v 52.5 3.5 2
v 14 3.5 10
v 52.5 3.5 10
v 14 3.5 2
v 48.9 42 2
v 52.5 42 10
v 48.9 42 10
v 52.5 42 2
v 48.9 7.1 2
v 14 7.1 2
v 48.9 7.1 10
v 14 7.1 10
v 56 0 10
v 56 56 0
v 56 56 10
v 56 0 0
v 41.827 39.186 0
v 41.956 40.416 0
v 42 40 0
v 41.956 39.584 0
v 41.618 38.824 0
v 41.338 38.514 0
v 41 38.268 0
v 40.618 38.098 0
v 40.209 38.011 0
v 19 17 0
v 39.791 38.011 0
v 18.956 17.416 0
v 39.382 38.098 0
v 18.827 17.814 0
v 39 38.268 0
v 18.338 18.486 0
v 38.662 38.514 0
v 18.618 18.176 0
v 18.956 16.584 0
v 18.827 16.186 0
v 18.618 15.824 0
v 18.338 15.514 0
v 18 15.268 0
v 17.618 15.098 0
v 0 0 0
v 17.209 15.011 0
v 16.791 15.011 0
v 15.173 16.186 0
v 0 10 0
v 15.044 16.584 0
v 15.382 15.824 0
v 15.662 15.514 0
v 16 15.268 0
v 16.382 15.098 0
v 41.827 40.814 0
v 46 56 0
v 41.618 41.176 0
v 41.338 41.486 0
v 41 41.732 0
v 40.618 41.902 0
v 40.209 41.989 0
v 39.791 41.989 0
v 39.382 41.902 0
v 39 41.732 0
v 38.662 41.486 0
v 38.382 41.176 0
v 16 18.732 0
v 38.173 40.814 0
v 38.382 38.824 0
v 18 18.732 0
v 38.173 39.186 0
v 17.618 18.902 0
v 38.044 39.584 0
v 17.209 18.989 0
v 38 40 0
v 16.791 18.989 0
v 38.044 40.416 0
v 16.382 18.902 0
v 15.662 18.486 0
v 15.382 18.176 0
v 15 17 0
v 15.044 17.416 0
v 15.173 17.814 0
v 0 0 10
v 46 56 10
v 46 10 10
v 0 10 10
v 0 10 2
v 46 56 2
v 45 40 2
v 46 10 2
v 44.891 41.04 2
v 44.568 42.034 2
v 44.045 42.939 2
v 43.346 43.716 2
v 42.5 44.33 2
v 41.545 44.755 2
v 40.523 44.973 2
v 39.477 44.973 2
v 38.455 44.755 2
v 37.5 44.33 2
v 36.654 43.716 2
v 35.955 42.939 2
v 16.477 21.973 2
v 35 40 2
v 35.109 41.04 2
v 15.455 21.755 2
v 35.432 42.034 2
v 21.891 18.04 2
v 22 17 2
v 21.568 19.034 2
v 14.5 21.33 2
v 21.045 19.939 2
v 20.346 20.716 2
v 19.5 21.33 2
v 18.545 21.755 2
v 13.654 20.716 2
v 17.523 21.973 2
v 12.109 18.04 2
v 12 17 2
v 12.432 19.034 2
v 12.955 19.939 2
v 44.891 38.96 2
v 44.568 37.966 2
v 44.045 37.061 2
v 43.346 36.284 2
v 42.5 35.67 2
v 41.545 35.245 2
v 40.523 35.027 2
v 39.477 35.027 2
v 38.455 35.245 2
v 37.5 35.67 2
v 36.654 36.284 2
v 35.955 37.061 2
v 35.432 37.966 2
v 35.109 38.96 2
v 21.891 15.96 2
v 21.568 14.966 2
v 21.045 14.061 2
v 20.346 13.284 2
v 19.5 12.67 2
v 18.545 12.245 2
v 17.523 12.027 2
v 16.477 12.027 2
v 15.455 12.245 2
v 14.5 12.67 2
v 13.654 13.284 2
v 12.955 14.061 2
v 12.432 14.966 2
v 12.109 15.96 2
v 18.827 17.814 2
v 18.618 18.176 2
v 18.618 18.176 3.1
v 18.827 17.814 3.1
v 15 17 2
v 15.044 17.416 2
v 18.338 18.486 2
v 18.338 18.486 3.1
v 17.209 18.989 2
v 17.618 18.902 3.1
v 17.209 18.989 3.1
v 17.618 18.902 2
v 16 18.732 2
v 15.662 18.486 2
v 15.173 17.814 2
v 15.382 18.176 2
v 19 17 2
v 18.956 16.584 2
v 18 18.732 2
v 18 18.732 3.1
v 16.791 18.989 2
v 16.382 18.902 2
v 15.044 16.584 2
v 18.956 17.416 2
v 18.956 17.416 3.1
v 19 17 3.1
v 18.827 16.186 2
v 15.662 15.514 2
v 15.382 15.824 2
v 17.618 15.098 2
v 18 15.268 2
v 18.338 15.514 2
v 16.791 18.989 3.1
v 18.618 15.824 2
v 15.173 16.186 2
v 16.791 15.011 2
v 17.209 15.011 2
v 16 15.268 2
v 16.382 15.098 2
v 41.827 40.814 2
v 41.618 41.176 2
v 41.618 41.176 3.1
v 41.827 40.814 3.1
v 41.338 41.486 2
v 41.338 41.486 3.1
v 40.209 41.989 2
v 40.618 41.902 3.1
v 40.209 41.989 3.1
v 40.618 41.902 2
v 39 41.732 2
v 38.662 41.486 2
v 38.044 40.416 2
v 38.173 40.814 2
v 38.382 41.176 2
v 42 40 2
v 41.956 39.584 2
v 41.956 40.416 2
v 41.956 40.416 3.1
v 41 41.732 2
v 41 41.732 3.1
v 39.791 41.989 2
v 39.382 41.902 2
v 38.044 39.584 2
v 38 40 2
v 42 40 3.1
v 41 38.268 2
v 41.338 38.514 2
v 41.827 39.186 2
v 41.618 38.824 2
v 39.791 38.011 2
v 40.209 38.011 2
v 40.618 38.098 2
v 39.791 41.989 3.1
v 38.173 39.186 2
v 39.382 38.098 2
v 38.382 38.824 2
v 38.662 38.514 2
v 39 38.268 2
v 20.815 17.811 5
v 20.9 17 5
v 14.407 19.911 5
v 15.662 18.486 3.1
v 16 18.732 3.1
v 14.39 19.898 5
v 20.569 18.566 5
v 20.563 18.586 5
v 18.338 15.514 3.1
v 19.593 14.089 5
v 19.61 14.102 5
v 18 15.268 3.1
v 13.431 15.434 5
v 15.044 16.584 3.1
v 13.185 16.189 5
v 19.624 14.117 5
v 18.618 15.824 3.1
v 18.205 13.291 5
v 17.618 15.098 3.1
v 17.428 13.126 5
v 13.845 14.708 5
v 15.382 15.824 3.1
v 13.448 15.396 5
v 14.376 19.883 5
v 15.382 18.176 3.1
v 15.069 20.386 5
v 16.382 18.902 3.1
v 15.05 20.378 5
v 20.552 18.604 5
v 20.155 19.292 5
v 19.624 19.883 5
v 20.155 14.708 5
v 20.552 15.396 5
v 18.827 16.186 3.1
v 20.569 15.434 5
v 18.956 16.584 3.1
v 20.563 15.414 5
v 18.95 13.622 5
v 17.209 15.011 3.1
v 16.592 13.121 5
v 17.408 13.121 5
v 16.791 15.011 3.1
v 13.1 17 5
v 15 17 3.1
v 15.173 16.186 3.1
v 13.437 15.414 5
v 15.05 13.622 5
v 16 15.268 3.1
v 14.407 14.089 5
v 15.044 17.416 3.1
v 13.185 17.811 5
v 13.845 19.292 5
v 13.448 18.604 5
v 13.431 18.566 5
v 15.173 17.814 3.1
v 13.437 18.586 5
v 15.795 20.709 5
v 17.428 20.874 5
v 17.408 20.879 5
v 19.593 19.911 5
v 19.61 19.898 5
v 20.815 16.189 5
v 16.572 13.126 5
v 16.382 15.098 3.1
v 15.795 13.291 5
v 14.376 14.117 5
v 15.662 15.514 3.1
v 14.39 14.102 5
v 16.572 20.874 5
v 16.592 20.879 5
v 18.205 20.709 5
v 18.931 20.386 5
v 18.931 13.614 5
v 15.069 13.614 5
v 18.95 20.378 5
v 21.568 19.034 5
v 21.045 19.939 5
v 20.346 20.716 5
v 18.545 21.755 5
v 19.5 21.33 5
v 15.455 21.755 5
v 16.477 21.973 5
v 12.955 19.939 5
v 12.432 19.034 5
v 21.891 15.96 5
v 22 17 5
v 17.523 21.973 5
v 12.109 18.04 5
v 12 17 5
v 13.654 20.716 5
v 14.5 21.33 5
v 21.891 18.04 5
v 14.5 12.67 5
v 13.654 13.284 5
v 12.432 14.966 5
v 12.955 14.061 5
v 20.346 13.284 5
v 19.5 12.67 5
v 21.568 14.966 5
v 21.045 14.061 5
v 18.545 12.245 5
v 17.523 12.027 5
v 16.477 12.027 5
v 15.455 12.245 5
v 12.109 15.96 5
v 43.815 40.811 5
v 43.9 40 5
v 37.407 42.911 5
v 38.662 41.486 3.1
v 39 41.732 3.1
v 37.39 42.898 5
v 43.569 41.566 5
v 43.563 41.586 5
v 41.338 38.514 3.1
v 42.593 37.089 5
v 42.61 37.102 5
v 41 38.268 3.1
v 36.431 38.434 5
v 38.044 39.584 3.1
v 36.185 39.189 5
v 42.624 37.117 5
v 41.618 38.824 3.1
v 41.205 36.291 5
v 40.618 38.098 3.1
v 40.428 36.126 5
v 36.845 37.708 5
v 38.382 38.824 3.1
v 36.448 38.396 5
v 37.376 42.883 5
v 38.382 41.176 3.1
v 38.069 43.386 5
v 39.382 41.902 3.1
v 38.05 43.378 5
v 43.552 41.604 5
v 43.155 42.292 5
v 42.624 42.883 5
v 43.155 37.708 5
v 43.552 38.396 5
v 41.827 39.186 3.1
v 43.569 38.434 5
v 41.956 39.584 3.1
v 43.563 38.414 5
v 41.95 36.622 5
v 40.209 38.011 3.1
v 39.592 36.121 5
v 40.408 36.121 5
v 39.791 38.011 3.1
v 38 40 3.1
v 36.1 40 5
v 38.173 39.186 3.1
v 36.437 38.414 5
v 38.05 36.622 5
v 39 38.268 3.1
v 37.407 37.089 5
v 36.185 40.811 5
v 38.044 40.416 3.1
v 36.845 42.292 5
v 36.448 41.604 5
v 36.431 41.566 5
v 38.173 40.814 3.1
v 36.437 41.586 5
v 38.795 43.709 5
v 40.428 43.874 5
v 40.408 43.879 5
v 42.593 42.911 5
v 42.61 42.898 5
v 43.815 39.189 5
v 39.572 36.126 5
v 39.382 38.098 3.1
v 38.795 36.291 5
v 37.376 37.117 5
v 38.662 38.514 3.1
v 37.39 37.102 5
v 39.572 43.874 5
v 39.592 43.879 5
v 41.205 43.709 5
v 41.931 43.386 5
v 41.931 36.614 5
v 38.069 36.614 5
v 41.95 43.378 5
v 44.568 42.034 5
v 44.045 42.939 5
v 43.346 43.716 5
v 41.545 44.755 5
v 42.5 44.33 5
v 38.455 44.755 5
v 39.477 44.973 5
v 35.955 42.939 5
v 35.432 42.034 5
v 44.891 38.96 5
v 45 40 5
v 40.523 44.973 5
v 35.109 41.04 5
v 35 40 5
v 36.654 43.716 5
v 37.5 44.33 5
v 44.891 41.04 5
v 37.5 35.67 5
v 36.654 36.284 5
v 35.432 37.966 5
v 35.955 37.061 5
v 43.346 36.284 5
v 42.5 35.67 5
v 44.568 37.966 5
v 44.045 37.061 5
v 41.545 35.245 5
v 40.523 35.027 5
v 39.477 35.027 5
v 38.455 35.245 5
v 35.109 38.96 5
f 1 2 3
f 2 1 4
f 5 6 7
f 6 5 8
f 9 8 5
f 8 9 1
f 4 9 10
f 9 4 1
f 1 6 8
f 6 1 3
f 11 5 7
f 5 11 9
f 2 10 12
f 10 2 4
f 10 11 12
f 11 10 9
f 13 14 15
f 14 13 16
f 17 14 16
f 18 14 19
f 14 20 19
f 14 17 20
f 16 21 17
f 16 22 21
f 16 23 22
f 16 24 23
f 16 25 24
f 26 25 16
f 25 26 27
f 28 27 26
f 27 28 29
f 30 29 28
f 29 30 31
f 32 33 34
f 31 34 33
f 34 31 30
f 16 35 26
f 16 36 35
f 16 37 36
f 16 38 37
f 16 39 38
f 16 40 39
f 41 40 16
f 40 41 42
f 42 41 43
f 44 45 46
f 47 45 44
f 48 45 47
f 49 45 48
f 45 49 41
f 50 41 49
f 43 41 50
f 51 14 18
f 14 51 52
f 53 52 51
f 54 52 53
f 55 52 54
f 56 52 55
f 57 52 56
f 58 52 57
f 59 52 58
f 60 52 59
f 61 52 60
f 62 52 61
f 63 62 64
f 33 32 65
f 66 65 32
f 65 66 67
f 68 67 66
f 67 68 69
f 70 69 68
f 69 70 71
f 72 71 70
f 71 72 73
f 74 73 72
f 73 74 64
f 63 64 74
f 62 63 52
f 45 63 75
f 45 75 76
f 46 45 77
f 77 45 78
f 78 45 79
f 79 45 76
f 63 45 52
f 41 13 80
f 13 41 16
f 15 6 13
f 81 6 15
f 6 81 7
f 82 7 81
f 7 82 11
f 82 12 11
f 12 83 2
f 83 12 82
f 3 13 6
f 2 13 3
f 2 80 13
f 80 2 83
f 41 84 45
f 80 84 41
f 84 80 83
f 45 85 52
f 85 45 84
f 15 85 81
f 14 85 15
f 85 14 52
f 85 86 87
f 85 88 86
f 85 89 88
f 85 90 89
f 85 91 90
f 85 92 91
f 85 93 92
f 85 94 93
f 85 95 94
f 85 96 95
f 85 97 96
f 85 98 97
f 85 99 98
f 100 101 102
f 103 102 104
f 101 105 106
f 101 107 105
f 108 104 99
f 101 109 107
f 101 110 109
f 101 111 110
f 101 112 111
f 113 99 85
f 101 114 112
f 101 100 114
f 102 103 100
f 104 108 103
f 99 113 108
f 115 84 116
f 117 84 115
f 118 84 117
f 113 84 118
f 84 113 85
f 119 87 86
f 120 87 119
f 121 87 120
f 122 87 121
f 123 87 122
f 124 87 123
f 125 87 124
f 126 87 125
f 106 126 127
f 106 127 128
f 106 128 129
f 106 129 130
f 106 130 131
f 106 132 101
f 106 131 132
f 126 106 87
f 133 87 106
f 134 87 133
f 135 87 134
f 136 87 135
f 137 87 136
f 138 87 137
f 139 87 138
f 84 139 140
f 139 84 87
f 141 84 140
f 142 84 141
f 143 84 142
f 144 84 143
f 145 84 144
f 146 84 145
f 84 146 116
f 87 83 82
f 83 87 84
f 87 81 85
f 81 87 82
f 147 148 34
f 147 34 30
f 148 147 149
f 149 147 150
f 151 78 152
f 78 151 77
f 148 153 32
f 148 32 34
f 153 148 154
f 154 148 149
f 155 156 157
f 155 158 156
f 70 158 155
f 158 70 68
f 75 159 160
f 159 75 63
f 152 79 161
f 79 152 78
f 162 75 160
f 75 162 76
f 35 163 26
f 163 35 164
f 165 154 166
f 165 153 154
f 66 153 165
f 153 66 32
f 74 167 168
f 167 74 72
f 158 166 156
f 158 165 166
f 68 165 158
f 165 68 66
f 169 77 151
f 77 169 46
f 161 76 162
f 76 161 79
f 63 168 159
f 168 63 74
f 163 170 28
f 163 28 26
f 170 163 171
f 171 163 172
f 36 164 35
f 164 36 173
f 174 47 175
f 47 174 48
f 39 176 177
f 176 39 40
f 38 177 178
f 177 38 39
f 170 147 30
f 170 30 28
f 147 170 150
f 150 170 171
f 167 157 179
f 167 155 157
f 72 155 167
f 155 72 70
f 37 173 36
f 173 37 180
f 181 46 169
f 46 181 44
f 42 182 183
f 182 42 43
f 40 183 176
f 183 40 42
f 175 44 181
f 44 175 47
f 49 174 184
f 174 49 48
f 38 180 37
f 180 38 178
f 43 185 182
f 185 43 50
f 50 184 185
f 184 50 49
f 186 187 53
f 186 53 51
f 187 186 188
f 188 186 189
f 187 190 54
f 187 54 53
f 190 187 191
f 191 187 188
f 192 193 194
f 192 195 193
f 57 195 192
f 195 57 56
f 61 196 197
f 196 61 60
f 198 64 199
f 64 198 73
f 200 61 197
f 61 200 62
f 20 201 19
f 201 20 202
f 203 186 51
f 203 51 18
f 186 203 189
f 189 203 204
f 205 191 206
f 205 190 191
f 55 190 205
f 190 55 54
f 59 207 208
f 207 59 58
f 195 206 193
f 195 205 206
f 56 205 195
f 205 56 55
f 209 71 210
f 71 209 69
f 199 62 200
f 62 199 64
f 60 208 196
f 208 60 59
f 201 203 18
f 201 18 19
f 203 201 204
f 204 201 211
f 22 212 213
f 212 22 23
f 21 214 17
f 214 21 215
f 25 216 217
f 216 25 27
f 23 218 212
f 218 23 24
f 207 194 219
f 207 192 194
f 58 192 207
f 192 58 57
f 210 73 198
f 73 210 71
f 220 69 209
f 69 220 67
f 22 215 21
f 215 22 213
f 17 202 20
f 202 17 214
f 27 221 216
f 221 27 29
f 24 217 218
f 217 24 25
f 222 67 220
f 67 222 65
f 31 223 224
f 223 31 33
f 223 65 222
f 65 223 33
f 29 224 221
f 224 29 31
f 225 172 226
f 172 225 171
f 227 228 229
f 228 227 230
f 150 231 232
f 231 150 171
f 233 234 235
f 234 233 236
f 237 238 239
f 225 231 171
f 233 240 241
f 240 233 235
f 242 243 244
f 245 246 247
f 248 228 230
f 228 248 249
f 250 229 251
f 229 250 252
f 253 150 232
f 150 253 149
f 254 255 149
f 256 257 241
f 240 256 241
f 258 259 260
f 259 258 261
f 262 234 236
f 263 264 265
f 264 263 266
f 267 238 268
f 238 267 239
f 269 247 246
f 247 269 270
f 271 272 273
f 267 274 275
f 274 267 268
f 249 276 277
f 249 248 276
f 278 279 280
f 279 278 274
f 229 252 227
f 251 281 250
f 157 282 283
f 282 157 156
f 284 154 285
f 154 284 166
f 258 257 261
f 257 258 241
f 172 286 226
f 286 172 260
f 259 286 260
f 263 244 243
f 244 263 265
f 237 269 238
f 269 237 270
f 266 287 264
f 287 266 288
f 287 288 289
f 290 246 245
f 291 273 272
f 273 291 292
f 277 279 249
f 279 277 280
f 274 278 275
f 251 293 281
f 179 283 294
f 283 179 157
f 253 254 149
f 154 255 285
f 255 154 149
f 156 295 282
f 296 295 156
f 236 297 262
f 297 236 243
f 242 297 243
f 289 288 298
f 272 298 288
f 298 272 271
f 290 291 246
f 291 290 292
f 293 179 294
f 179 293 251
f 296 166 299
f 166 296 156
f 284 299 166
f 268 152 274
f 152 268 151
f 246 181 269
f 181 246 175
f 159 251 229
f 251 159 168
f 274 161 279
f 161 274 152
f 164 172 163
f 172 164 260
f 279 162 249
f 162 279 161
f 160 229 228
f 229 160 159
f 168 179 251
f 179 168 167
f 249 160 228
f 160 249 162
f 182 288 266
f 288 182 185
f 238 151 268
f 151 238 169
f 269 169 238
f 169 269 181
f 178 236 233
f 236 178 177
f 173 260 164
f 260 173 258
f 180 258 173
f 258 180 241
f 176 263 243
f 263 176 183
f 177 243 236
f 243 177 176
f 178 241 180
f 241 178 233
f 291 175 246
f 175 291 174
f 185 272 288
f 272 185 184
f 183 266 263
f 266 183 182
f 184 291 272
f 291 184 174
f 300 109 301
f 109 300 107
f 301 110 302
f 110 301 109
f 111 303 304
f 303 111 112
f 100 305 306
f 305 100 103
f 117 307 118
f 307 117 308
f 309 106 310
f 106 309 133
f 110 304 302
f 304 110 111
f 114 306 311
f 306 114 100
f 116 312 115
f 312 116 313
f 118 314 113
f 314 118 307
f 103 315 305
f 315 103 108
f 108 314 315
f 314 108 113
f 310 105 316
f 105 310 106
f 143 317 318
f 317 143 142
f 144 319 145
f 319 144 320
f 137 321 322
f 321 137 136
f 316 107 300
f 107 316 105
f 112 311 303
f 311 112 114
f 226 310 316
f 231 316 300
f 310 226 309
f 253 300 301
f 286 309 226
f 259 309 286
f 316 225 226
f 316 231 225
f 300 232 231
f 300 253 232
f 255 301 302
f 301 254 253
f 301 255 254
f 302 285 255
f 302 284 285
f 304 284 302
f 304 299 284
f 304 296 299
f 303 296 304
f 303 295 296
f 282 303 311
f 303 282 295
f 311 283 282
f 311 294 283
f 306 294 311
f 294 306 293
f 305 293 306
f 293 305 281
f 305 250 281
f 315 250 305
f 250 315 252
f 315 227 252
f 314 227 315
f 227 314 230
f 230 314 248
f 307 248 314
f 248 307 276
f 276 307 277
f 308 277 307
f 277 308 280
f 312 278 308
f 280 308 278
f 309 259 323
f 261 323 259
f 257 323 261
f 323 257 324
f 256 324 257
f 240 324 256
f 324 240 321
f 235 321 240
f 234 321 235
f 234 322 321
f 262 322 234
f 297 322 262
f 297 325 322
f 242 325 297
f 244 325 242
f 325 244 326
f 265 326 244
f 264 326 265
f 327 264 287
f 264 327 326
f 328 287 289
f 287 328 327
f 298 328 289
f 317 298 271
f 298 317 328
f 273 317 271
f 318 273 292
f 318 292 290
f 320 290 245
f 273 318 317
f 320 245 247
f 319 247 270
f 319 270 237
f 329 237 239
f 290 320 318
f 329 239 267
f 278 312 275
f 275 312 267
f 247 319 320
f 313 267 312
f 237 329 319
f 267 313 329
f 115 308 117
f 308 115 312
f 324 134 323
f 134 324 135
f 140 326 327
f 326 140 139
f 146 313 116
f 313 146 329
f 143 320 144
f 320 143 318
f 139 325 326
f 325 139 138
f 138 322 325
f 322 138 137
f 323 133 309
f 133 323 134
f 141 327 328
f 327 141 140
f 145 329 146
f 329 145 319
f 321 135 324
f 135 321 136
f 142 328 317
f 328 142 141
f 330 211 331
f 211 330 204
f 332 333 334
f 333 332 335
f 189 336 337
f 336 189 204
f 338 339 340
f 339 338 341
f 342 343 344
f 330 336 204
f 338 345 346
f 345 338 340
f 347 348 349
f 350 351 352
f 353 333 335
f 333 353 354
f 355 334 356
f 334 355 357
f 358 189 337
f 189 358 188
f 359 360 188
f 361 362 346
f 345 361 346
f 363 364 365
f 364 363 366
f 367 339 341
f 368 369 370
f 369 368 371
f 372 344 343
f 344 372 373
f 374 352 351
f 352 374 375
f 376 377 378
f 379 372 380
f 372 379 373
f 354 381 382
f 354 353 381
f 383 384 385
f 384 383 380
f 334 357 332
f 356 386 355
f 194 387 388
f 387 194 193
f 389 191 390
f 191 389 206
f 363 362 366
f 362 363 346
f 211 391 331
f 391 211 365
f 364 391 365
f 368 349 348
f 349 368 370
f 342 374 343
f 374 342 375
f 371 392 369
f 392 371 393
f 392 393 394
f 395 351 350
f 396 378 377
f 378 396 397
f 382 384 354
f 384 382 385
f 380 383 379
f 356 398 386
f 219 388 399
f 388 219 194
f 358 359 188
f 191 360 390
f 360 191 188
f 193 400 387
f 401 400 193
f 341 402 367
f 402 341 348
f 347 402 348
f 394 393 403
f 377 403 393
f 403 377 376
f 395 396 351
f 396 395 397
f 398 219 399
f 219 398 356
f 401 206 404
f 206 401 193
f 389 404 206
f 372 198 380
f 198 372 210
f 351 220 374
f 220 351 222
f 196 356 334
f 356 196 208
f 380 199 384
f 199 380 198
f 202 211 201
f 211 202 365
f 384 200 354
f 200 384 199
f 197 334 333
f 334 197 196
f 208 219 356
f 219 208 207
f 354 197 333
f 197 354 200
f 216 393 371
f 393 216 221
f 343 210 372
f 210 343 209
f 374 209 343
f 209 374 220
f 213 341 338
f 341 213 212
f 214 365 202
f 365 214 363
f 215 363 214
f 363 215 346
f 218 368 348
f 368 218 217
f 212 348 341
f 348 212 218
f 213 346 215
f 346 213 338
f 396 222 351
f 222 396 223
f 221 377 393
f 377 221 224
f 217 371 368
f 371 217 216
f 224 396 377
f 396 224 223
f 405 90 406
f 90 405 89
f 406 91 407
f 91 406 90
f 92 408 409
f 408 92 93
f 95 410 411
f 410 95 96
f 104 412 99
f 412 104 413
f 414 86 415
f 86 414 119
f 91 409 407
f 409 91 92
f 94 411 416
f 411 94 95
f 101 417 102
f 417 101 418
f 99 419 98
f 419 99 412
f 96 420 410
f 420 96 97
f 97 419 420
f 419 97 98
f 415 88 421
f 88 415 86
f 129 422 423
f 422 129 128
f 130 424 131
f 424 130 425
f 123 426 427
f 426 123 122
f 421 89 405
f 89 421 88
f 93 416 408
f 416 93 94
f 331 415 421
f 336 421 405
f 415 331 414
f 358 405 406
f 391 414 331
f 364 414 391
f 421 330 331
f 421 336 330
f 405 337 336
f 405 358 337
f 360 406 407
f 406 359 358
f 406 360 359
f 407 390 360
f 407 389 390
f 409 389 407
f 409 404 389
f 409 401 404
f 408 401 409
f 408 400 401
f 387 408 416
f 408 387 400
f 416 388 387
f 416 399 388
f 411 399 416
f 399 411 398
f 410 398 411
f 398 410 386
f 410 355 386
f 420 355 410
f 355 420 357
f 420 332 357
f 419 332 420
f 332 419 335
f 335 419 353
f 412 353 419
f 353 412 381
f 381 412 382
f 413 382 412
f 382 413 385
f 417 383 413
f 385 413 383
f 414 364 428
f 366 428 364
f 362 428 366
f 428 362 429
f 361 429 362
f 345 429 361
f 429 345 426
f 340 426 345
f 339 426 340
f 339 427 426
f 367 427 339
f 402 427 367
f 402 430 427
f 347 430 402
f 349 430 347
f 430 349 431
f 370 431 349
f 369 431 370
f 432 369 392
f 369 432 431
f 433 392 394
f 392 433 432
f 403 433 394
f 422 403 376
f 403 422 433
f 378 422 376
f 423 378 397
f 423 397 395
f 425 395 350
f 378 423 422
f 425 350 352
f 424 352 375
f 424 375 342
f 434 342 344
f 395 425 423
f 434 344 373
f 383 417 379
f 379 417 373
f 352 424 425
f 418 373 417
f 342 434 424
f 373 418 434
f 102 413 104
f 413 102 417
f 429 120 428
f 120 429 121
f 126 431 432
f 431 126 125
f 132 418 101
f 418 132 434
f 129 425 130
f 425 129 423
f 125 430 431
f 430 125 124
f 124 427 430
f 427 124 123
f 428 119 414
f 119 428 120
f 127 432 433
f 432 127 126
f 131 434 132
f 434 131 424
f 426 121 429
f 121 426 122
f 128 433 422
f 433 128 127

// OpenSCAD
$fn = 30;

use <./height extender - base.scad>;
extender(10);
module extender(h) {
    difference() {
        union() {
            linear_extrude(height = h)
            color("grey")
            translate([0, 0, 0])
            base();
        }

        translate([56 - 3.5, 3.5, 2])
        rotate([0, 0, 90])
        recess();

        color("pink")
        translate([-1, 10, 2])
        linear_extrude(height = 10)
        cutout();

        translate([17, 17, -1])
        cylinder(h = 4, r = 2);

        translate([40, 40, -1])
        cylinder(h = 4, r = 2);
    }

    translate([17,17,2])
    screw_hole();

    translate([40,40,2])
    screw_hole();
}

module base() {
    polygon(points=[
                [0, 0],
                [56, 0],
                [56, 56],
                [46, 56],
                [0, 10],
                [0,0]
                ],convexity=10
        );
};

module cutout() {
    polygon(points=[
                [0, 0],
                [47, 0],
                [47, 47],
                [0,0]
                ],convexity=10
        );
};

module recess() {

    w = 38.5;
    t = 3.6;
    h = 10;

    color("red")
    cube([w, t, h]);

    color("pink")
    translate([t, 0, 0])
    rotate([0, 0, 90])
    cube([w, t, h]);
};

module screw_hole() {
    
    difference() {
        cylinder(h = 3, r = 5);
            
        color("red")
        union() {
            translate([0, 0, 1.1])
            cylinder(h = 2, r1 = 2, r2 = 4);
            translate([0, 0, -1])
            cylinder(h = 5, r = 2);
        }   
    }
}
